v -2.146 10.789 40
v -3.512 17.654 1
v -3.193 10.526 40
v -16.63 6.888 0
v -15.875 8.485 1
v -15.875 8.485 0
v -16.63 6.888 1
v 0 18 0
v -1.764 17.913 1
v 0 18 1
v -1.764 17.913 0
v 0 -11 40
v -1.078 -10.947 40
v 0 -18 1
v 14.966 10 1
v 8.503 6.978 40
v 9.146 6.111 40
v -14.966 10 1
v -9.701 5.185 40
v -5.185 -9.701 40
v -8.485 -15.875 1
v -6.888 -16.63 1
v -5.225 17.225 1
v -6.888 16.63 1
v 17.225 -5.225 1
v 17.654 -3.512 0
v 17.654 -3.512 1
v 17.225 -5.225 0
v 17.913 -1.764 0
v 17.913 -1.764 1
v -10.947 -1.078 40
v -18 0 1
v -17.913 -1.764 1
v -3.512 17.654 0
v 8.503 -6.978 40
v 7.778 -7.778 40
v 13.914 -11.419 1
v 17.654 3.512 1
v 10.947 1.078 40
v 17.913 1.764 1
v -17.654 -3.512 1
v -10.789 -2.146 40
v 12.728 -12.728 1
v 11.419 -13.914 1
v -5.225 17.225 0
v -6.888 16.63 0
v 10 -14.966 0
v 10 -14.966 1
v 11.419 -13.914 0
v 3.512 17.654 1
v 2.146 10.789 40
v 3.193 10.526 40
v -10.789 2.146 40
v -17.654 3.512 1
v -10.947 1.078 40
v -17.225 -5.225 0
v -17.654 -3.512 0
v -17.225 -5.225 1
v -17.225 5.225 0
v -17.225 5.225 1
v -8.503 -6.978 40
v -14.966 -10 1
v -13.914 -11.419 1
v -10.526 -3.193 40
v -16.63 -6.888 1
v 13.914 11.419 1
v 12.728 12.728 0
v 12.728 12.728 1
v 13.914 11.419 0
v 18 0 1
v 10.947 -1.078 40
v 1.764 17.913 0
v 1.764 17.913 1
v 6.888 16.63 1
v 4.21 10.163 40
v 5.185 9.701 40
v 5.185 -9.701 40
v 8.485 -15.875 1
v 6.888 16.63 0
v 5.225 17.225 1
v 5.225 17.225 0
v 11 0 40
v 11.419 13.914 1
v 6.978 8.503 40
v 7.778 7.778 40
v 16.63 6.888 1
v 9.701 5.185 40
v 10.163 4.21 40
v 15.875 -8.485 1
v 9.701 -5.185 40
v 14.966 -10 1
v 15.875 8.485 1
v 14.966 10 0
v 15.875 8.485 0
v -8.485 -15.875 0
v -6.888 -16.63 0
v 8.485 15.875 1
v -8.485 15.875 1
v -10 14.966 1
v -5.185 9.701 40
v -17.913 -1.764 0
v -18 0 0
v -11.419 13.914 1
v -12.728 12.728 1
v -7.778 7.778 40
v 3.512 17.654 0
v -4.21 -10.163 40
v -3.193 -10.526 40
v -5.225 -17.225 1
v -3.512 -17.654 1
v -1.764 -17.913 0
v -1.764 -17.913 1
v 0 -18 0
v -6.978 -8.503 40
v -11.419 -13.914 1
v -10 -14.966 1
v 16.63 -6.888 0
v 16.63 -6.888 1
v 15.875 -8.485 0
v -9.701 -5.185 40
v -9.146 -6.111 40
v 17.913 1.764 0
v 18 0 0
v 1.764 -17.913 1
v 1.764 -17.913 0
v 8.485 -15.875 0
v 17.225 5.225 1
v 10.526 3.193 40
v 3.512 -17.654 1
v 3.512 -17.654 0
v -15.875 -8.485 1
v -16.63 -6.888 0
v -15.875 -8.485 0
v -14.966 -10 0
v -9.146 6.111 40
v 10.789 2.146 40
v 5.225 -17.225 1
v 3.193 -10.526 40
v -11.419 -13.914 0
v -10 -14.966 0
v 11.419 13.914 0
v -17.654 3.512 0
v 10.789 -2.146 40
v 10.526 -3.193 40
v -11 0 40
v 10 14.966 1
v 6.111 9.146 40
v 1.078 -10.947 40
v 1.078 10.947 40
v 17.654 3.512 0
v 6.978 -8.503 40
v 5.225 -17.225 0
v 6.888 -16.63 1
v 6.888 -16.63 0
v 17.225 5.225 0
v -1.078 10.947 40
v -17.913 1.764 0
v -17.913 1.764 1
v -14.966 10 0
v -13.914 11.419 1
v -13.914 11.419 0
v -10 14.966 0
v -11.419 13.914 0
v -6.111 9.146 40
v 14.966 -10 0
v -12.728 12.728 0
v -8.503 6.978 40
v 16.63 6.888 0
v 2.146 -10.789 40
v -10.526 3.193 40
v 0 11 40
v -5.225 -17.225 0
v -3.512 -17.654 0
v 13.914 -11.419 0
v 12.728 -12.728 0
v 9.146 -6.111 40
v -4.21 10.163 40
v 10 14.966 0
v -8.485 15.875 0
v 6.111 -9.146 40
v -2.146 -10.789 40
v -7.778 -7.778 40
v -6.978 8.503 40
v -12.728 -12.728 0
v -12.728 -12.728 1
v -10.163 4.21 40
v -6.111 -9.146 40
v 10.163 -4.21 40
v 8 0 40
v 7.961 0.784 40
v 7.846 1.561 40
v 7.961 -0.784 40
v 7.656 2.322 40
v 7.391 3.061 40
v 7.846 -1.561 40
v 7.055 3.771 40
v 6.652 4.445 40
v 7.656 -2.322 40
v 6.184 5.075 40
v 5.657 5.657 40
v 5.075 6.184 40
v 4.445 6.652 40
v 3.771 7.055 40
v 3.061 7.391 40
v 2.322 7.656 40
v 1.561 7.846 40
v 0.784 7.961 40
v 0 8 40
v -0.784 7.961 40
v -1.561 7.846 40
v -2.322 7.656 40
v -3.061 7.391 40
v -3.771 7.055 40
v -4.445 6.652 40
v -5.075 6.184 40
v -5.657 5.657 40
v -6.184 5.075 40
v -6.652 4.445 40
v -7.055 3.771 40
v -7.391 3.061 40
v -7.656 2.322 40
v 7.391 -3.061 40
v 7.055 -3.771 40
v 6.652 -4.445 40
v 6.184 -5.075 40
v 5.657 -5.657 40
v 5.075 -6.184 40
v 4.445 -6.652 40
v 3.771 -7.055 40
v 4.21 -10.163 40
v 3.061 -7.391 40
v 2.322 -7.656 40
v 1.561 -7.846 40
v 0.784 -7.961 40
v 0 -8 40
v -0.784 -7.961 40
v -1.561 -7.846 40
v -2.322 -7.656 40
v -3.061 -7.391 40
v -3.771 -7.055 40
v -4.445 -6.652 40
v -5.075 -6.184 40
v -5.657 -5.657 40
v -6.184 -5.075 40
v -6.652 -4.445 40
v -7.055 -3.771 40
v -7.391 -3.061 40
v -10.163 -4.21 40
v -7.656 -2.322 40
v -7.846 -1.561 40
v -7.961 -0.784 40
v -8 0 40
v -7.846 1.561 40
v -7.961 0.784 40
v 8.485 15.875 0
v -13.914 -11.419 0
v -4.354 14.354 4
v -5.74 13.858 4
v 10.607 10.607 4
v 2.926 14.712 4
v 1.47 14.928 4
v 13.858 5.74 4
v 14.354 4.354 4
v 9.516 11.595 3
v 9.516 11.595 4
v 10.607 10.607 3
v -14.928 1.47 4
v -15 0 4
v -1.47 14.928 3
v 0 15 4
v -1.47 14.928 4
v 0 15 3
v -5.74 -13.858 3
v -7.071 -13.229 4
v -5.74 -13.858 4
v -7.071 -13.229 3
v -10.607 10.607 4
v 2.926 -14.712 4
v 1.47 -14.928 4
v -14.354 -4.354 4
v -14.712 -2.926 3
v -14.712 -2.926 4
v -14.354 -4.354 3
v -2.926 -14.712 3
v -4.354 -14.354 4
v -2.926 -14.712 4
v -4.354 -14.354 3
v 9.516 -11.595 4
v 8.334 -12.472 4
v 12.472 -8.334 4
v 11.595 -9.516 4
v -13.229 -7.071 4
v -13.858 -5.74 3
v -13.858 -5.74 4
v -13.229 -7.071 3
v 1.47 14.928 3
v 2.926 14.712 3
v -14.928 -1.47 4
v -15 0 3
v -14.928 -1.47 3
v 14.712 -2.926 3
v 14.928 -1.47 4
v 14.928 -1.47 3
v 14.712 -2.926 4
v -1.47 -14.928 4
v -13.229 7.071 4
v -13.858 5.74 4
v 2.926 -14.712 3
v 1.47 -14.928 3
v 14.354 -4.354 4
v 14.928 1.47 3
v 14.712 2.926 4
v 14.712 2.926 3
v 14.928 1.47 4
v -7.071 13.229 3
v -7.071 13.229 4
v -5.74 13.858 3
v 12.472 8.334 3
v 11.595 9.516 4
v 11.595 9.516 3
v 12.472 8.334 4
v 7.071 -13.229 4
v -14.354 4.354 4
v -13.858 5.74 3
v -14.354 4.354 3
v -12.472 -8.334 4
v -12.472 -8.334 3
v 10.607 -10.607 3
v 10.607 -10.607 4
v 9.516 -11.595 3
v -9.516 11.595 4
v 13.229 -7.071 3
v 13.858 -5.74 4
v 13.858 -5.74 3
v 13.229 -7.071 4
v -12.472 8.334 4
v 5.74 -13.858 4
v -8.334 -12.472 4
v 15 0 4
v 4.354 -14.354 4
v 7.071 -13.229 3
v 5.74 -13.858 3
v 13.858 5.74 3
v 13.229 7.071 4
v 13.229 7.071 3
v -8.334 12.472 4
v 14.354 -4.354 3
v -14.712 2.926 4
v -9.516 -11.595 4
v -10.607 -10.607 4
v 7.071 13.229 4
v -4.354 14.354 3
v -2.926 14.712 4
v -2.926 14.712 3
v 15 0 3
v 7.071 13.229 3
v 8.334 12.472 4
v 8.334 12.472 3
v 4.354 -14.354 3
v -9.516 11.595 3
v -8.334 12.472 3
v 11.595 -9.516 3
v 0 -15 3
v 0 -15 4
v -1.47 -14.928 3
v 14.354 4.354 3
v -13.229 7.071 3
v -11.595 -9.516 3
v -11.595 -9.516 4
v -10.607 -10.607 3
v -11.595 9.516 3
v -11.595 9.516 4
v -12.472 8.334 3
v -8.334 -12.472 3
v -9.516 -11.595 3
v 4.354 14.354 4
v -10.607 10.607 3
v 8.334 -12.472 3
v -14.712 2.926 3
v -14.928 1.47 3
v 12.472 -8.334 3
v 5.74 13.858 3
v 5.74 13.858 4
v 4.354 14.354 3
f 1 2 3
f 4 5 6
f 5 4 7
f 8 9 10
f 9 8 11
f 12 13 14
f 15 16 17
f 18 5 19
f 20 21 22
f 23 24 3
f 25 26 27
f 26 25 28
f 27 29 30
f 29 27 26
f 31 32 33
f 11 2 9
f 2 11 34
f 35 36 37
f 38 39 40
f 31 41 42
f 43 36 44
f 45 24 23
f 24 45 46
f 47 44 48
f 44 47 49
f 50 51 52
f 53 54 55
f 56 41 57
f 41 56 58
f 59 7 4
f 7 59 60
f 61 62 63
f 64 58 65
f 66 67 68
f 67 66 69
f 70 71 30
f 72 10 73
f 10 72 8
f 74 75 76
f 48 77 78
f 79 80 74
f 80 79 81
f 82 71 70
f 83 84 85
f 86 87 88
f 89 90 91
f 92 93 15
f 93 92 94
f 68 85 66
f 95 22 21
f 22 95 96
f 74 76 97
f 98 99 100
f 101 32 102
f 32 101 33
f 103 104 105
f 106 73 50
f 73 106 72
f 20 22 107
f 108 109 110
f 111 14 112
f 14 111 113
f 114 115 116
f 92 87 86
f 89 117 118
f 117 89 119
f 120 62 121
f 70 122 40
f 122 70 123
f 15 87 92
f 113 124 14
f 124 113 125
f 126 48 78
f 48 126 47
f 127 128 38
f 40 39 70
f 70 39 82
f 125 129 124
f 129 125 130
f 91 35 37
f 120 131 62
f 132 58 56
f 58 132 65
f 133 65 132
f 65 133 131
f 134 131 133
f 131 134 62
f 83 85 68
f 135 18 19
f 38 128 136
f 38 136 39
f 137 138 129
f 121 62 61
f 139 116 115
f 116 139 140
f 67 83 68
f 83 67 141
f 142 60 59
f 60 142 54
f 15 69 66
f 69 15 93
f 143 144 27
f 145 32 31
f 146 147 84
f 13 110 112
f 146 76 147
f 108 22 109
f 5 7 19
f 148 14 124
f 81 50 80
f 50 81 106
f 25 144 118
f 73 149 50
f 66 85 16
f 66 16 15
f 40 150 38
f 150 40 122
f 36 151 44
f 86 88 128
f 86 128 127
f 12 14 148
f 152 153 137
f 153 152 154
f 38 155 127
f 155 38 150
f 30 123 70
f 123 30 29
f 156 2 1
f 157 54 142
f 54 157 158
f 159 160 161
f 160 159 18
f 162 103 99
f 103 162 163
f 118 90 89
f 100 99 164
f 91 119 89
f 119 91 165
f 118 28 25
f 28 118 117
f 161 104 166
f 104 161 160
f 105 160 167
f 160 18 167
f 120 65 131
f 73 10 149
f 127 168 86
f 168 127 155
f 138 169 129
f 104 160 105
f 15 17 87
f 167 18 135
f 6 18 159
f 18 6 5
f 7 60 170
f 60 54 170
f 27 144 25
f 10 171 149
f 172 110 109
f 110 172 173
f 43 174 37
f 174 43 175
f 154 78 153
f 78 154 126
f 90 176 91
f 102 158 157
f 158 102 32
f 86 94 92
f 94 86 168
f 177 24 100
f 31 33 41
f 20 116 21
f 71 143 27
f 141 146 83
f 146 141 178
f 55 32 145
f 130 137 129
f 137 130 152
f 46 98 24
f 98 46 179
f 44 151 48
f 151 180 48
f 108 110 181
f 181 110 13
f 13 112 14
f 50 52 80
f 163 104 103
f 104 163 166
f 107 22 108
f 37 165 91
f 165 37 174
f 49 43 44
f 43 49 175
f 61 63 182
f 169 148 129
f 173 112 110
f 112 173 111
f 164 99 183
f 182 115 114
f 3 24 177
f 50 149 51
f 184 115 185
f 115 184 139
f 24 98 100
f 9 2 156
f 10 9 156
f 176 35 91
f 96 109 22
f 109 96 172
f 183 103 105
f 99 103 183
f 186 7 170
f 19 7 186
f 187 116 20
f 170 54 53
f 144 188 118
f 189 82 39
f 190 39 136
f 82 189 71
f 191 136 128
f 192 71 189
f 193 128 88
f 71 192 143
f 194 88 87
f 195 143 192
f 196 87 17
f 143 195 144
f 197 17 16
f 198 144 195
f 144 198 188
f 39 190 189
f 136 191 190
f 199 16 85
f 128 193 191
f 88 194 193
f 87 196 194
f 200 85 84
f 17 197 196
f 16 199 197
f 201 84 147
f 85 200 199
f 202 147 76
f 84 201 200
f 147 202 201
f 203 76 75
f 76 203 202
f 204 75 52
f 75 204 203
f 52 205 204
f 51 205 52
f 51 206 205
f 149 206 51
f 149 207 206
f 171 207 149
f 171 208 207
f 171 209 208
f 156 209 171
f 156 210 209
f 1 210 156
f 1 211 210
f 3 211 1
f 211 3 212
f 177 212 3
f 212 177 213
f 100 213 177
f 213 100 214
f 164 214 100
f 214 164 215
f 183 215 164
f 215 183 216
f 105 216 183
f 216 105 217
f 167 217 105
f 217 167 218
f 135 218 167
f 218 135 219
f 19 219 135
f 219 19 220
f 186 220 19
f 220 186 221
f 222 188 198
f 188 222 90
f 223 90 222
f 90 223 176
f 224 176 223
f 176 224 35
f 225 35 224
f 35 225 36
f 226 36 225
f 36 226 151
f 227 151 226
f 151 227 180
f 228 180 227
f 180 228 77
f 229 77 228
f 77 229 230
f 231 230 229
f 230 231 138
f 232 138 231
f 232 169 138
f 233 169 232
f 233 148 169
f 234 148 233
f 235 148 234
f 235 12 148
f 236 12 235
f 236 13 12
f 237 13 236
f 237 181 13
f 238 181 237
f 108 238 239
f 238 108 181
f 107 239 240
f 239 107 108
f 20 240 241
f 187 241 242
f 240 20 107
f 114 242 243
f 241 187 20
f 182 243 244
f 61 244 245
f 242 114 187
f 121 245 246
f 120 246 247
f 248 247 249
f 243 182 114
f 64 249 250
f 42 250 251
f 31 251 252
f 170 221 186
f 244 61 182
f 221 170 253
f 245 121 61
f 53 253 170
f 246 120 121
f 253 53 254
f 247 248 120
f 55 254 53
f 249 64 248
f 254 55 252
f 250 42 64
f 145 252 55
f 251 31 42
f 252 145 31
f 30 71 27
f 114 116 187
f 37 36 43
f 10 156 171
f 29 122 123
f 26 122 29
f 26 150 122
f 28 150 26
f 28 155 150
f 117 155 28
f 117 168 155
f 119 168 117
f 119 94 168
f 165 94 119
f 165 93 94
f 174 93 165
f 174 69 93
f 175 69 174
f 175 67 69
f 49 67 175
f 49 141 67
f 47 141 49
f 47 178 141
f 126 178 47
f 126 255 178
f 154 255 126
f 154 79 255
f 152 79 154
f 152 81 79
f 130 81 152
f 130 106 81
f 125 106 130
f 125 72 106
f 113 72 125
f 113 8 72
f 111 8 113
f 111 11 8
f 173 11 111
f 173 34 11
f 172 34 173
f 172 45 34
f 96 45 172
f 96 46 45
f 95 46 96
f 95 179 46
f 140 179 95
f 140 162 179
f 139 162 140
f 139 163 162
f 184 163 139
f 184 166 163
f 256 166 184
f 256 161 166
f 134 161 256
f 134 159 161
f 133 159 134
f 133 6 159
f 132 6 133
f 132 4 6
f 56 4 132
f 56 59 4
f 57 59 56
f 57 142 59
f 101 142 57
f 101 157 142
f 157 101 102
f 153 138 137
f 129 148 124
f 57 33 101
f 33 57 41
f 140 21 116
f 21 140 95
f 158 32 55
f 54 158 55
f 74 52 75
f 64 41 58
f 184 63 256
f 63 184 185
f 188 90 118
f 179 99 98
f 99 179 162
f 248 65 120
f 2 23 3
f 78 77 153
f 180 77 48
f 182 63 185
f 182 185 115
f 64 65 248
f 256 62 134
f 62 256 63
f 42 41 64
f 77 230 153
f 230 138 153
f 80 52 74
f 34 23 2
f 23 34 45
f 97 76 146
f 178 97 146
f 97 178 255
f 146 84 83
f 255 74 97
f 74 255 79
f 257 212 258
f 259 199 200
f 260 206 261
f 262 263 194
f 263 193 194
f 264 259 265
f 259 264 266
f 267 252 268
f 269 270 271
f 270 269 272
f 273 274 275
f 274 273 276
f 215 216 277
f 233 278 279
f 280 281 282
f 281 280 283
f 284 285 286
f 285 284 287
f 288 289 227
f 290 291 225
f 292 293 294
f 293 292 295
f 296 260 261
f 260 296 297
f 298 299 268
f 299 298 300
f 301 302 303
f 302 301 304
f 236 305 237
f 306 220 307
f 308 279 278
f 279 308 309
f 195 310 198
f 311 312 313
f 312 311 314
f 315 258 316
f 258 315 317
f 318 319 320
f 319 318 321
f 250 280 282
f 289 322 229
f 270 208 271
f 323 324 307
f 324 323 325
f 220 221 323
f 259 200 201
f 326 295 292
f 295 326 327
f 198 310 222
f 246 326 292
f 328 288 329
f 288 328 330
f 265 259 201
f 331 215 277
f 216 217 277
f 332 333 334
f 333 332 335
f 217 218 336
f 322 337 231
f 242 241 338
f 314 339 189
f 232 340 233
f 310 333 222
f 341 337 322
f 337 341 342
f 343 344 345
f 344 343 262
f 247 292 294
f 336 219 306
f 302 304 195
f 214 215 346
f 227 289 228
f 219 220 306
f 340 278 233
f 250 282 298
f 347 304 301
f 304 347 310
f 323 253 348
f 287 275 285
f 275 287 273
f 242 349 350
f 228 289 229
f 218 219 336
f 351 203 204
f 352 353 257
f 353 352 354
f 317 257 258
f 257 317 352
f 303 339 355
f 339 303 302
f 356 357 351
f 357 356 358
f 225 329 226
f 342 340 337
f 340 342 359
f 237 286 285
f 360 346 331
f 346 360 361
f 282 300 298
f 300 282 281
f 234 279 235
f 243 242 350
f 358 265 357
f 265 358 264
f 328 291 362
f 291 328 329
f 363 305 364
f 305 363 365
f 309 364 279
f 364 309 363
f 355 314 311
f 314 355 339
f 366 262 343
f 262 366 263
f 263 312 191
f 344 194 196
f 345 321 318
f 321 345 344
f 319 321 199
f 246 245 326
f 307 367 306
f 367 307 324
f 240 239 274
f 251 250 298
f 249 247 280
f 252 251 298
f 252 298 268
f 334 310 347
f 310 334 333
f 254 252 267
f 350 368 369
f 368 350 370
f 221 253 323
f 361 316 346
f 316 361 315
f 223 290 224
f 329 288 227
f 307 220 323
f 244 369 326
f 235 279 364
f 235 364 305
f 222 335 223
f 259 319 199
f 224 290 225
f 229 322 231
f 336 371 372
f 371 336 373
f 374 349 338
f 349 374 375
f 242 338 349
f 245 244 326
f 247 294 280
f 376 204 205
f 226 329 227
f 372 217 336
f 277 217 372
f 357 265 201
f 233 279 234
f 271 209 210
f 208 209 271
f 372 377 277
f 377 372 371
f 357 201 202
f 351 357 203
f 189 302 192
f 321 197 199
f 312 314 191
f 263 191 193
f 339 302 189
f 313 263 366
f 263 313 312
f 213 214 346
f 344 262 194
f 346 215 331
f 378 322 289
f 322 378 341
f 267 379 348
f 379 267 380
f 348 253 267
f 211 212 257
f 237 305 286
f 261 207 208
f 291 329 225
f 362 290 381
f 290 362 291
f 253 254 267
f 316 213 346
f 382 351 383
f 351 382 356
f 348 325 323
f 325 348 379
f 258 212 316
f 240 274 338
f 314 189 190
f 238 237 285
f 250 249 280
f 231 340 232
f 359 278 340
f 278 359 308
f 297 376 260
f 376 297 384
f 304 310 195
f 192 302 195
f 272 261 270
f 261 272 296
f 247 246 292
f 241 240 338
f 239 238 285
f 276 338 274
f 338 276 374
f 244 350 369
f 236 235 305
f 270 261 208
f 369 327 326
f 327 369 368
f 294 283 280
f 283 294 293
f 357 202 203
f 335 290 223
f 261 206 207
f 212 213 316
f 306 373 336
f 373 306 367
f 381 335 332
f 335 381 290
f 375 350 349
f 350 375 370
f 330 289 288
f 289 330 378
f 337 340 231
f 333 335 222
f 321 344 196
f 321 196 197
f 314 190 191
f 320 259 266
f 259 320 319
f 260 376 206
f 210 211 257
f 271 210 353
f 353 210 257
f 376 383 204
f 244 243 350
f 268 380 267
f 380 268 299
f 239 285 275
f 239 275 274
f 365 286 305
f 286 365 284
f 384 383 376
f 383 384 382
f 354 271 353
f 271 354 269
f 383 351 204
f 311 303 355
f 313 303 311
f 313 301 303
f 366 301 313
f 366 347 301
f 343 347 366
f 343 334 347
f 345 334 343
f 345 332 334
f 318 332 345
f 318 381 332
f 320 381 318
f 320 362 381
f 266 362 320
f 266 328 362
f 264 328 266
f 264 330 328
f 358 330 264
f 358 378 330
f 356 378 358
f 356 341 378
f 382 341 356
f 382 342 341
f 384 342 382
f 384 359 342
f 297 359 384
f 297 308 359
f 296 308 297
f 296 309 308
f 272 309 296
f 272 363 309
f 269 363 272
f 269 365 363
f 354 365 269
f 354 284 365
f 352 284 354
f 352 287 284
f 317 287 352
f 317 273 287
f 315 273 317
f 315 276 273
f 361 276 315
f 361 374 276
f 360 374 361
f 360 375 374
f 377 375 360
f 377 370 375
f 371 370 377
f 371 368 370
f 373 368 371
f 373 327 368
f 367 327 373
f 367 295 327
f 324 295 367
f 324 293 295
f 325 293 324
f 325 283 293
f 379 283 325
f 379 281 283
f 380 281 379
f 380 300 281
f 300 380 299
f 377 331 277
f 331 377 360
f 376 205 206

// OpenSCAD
// Parametric vase
height = 40; wall = 3; base_radius = 18; neck_radius = 11;
difference() {
    hull() { cylinder(r=base_radius,h=1,$fn=64);
             translate([0,0,height-1]) cylinder(r=neck_radius,h=1,$fn=64); }
    translate([0,0,wall]) hull() {
             cylinder(r=base_radius-wall,h=1,$fn=64);
             translate([0,0,height-1-wall]) cylinder(r=neck_radius-wall,h=1,$fn=64); }
}
